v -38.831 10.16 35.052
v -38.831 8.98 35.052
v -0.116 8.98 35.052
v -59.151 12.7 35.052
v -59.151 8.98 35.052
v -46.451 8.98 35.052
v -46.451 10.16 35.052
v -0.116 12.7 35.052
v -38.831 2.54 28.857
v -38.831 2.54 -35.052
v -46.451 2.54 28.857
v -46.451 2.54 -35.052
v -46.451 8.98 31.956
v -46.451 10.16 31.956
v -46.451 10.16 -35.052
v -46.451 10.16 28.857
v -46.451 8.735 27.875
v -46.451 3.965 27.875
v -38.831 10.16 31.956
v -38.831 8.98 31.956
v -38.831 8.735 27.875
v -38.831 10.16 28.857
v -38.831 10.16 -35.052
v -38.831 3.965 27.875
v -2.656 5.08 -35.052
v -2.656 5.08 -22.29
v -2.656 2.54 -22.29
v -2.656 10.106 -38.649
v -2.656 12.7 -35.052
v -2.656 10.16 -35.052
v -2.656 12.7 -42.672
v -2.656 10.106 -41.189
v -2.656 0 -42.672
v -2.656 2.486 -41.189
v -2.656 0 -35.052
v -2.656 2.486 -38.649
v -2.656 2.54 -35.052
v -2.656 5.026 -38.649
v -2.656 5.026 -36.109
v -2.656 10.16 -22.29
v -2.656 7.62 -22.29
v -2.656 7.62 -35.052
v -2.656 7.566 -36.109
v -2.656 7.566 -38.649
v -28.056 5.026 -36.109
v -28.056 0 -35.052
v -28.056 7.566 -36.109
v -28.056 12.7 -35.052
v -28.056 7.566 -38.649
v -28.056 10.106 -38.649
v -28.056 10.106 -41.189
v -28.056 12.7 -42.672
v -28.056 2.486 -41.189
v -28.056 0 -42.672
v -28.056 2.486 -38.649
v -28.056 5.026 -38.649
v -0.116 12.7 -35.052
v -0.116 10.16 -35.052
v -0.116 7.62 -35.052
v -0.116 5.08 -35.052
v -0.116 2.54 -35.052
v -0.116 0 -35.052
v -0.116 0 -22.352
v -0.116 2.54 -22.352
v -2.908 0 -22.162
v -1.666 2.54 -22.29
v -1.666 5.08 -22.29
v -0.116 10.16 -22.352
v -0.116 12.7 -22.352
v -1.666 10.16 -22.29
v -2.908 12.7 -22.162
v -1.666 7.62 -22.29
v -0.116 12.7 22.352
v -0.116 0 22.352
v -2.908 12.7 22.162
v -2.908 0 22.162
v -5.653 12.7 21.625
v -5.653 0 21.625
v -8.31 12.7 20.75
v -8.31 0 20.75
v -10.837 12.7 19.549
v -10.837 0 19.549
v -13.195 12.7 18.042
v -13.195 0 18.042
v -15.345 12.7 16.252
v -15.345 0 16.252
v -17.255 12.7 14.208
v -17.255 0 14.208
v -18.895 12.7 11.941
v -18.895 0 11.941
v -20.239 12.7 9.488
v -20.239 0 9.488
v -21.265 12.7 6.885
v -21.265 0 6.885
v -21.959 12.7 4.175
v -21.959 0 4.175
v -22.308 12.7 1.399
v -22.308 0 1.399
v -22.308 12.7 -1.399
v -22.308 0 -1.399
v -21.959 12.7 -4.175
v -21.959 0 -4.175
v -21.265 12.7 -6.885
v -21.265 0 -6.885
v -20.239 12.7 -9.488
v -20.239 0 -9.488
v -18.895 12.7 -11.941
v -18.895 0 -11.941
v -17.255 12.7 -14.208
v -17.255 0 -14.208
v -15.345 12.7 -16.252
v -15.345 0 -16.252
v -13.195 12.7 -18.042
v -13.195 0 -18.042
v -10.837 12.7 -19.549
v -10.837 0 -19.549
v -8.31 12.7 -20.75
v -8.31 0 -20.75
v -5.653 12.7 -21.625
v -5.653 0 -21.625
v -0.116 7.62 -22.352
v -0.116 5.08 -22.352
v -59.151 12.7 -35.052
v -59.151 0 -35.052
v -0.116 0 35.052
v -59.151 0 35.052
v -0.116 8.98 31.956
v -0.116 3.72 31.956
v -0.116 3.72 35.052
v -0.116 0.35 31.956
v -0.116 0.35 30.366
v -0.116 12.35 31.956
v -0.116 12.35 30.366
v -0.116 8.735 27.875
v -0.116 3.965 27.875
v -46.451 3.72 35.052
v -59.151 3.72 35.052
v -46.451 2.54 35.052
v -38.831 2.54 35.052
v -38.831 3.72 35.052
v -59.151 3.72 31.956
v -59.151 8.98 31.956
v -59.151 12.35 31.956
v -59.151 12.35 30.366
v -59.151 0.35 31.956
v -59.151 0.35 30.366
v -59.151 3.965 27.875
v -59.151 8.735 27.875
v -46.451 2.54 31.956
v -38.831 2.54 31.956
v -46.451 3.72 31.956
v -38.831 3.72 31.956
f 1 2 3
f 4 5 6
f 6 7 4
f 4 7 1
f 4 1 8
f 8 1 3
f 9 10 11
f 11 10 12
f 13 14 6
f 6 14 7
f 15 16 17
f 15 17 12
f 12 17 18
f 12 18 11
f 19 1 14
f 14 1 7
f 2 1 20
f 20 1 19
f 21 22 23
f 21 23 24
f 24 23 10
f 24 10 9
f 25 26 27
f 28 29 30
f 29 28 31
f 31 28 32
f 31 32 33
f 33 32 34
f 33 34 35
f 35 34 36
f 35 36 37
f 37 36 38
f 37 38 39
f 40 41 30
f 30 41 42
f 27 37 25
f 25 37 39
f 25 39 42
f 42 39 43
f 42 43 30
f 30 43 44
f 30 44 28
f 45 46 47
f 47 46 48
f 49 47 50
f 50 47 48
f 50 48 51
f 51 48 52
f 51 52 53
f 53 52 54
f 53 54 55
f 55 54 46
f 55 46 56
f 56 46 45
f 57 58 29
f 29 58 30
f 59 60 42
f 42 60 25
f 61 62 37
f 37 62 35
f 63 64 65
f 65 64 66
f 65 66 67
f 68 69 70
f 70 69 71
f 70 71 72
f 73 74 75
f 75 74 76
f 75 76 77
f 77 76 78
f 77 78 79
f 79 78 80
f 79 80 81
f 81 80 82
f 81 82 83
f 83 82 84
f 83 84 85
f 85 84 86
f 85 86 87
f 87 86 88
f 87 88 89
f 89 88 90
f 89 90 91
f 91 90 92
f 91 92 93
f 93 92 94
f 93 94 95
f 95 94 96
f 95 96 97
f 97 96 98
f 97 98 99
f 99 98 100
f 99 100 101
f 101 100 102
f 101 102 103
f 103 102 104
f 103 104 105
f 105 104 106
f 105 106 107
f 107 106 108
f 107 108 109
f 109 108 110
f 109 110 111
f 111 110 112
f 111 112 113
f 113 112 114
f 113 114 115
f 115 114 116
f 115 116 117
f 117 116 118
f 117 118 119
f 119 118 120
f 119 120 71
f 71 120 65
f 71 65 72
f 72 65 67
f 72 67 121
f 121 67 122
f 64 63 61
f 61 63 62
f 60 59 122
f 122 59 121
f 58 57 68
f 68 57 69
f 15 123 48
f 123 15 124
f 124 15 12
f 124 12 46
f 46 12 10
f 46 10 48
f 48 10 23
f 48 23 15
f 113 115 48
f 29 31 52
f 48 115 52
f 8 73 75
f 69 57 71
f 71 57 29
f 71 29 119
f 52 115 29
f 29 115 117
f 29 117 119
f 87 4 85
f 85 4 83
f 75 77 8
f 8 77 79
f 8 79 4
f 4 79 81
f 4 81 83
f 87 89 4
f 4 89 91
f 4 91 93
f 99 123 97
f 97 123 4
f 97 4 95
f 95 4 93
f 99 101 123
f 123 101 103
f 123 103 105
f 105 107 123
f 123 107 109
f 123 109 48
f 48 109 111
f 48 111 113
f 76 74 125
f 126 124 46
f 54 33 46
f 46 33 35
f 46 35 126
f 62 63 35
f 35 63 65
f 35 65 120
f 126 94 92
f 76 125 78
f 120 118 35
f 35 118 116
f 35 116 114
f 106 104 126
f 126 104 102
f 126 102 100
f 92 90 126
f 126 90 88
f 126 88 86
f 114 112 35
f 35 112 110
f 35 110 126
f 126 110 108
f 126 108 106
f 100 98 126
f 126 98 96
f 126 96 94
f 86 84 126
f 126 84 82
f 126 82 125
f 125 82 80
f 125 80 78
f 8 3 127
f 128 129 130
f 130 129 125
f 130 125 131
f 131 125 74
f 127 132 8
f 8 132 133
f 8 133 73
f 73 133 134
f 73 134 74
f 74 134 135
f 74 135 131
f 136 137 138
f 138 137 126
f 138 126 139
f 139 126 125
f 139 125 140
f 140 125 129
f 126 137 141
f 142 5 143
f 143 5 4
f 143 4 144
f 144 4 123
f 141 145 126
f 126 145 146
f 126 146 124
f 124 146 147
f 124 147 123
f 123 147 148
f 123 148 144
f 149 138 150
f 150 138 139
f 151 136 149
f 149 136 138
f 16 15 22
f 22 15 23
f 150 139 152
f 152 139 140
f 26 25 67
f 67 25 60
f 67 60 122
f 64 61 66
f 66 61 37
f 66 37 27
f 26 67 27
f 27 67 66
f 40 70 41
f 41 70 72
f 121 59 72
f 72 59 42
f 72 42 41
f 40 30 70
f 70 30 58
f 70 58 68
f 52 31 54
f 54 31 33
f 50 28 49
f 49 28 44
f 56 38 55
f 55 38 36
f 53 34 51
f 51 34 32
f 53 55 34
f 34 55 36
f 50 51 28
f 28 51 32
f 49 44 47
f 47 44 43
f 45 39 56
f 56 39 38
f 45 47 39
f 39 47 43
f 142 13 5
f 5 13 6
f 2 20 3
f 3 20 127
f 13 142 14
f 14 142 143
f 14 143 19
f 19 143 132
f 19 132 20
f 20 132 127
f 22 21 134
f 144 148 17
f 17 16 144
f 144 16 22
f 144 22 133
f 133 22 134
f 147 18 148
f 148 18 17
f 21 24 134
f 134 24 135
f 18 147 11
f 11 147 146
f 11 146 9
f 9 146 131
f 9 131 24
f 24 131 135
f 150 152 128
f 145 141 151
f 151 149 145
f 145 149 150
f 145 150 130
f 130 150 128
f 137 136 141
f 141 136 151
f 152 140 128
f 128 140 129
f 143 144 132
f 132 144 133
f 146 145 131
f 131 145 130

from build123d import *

# Parameters (mm, degrees)
SKETCH1_R               = 35.052
SKETCH1_R_2             = 22.352
BOSS_EXTRUDE2_DEPTH     = 12.7
CUT_EXTRUDE4_DEPTH      = 52.172017822
CUT_EXTRUDE4_DEPTH_BACK = 52.172017822
SKETCH4_W               = 50.006101534
SKETCH4_H               = 77.834708864
BOSS_EXTRUDE6_START     = -12.7
BOSS_EXTRUDE6_DEPTH     = 12.7
CUT_EXTRUDE5_DEPTH      = 93.599518977
CUT_EXTRUDE5_DEPTH_BACK = 93.599518977
SKETCH14_W              = 7.62
SKETCH14_H              = 7.62
CAVITY1_START           = 2.54
CAVITY1_DEPTH           = 2.54
CAVITY1_START_2         = 7.62
CAVITY1_2_DEPTH         = 2.54
SKETCH16_W              = 25.4
SKETCH16_H              = 12.7
BOSS_EXTRUDE8_DEPTH     = 7.62
CAVITY3_START           = -41.188715615
CAVITY3_OUTLINE_W       = 25.4
CAVITY3_OUTLINE_H       = 7.62
CAVITY3_DEPTH           = 2.54
CAVITY3_START_2         = -38.648715615
CAVITY3_2_OUTLINE_W     = 25.4
CAVITY3_2_OUTLINE_H     = 2.54
CAVITY3_2_DEPTH         = 2.54
CUT_EXTRUDE6_DEPTH      = 74.941076403
CUT_EXTRUDE6_DEPTH_BACK = 74.941076403


# Read off the part's stored shape, not the designer's step: Cavity1, Cavity3
with BuildPart() as part:
    # Sketch1 → Boss-Extrude2 (new body)
    with BuildSketch(Plane(origin=(0, 0, 0), x_dir=(1, 0, 0), z_dir=(0, 1, 0))):
        with Locations(Location((0, 0, 0), (0, 0, 270))):
            Circle(SKETCH1_R)
        with Locations(Location((0, 0, 0), (0, 0, 270))):
            Circle(SKETCH1_R_2, mode=Mode.SUBTRACT)
    extrude(amount=BOSS_EXTRUDE2_DEPTH)

    # Sketch4 → Cut-Extrude4 (cut, two sides: drawn at the far end of the back side and taken through both)
    with BuildSketch(Plane(origin=(0, 12.7, 0), x_dir=(1, 0, 0), z_dir=(0, 1, 0)).offset(-CUT_EXTRUDE4_DEPTH_BACK)):
        with Locations((24.88666989, 1.453038664)):
            Rectangle(SKETCH4_W, SKETCH4_H)
    extrude(amount=CUT_EXTRUDE4_DEPTH + CUT_EXTRUDE4_DEPTH_BACK, mode=Mode.SUBTRACT)

    # Sketch13 → Boss-Extrude6 (add)
    with BuildSketch(Plane(origin=(0, 12.7, 0), x_dir=(1, 0, 0), z_dir=(0, 1, 0)).offset(BOSS_EXTRUDE6_START)):
        with BuildLine():
            Line((-22.534267524, 26.848640397), (-22.534267524, 35.051806794))
            Line((-22.534267524, 35.051806794), (-59.151198439, 35.051806794))
            Line((-59.151198439, 35.051806794), (-59.151198439, -35.051806794))
            Line((-59.151198439, -35.051806794), (-22.534267524, -35.051806794))
            Line((-22.534267524, -35.051806794), (-22.534267524, -26.848640397))
            ThreePointArc((-22.534267524, -26.848640397), (-35.052, 0), (-22.534267524, 26.848640397))
        make_face()
        with BuildLine():
            ThreePointArc((-22.534267524, 26.848640397), (-12.045163053, 32.917423214), (-0.116380877, 35.051806794))
            Line((-0.116380877, 35.051806794), (-22.534267524, 35.051806794))
            Line((-22.534267524, 35.051806794), (-22.534267524, 26.848640397))
        make_face()
        with BuildLine():
            Line((-22.534267524, -35.051806794), (-0.116380877, -35.051806794))
            ThreePointArc((-0.116380877, -35.051806794), (-12.045163053, -32.917423214), (-22.534267524, -26.848640397))
            Line((-22.534267524, -26.848640397), (-22.534267524, -35.051806794))
        make_face()
    extrude(amount=BOSS_EXTRUDE6_DEPTH)

    # Sketch14 → Cut-Extrude5 (cut, two sides: drawn at the far end of the back side and taken through both)
    with BuildSketch(Plane.XY.offset(35.051806794).offset(-CUT_EXTRUDE5_DEPTH_BACK)):
        with Locations((-42.641198439, 6.35)):
            Rectangle(SKETCH14_W, SKETCH14_H)
    extrude(amount=CUT_EXTRUDE5_DEPTH + CUT_EXTRUDE5_DEPTH_BACK, mode=Mode.SUBTRACT)

    # Cavity1 outline → Cavity1 (cut)
    with BuildSketch(Plane(origin=(0, 0, 0), x_dir=(1, 0, 0), z_dir=(0, 1, 0)).offset(CAVITY1_START)):
        with BuildLine():
            Line((-2.656380877, 35.051806794), (-2.656380877, 22.289859607))
            Line((-2.656380877, 22.289859607), (-1.66555177, 22.289859607))
            ThreePointArc((-1.66555177, 22.289859607), (-0.891502639, 22.33421427), (-0.116380877, 22.351697016))
            Line((-0.116380877, 22.351697016), (-0.116380877, 35.051806794))
            Line((-0.116380877, 35.051806794), (-2.656380877, 35.051806794))
        make_face()
    extrude(amount=CAVITY1_DEPTH, mode=Mode.SUBTRACT)

    # Cavity1 2 outline → Cavity1 2 (cut)
    with BuildSketch(Plane(origin=(0, 0, 0), x_dir=(1, 0, 0), z_dir=(0, 1, 0)).offset(CAVITY1_START_2)):
        with BuildLine():
            Line((-2.656380877, 35.051806794), (-2.656380877, 22.289859607))
            Line((-2.656380877, 22.289859607), (-1.66555177, 22.289859607))
            ThreePointArc((-1.66555177, 22.289859607), (-0.891502639, 22.33421427), (-0.116380877, 22.351697016))
            Line((-0.116380877, 22.351697016), (-0.116380877, 35.051806794))
            Line((-0.116380877, 35.051806794), (-2.656380877, 35.051806794))
        make_face()
    extrude(amount=CAVITY1_2_DEPTH, mode=Mode.SUBTRACT)

    # Sketch16 → Boss-Extrude8 (add)
    with BuildSketch(Plane(origin=(0, 0, -35.051806794), x_dir=(-1, 0, 0), z_dir=(0, 0, -1))):
        with Locations((15.356380877, 6.35)):
            Rectangle(SKETCH16_W, SKETCH16_H)
    extrude(amount=BOSS_EXTRUDE8_DEPTH)

    # Cavity3 outline → Cavity3 (cut)
    with BuildSketch(Plane.XY.offset(CAVITY3_START)):
        with Locations((-15.356380877, 6.296394857)):
            Rectangle(CAVITY3_OUTLINE_W, CAVITY3_OUTLINE_H)
    extrude(amount=CAVITY3_DEPTH, mode=Mode.SUBTRACT)

    # Cavity3 2 outline → Cavity3 2 (cut)
    with BuildSketch(Plane.XY.offset(CAVITY3_START_2)):
        with Locations((-15.356380877, 6.296394857)):
            Rectangle(CAVITY3_2_OUTLINE_W, CAVITY3_2_OUTLINE_H)
    extrude(amount=CAVITY3_2_DEPTH, mode=Mode.SUBTRACT)

    # Sketch17 → Cut-Extrude6 (cut, two sides: drawn at the far end of the back side and taken through both)
    with BuildSketch(Plane(origin=(-0.116380877, 0, 0), x_dir=(0, 0, -1), z_dir=(1, 0, 0)).offset(-CUT_EXTRUDE6_DEPTH_BACK)):
        Polygon((-35.051806794, 8.979999947), (-31.955539721, 8.979999947), (-31.955539721, 12.349999947), (-30.365539721, 12.349999947), (-27.874781804, 8.734999947), (-27.874781804, 3.964999947), (-30.365539721, 0.349999947), (-31.955539721, 0.349999947), (-31.955539721, 3.719999947), (-35.051806794, 3.719999947), align=None)
    extrude(amount=CUT_EXTRUDE6_DEPTH + CUT_EXTRUDE6_DEPTH_BACK, mode=Mode.SUBTRACT)


solid = part.part
